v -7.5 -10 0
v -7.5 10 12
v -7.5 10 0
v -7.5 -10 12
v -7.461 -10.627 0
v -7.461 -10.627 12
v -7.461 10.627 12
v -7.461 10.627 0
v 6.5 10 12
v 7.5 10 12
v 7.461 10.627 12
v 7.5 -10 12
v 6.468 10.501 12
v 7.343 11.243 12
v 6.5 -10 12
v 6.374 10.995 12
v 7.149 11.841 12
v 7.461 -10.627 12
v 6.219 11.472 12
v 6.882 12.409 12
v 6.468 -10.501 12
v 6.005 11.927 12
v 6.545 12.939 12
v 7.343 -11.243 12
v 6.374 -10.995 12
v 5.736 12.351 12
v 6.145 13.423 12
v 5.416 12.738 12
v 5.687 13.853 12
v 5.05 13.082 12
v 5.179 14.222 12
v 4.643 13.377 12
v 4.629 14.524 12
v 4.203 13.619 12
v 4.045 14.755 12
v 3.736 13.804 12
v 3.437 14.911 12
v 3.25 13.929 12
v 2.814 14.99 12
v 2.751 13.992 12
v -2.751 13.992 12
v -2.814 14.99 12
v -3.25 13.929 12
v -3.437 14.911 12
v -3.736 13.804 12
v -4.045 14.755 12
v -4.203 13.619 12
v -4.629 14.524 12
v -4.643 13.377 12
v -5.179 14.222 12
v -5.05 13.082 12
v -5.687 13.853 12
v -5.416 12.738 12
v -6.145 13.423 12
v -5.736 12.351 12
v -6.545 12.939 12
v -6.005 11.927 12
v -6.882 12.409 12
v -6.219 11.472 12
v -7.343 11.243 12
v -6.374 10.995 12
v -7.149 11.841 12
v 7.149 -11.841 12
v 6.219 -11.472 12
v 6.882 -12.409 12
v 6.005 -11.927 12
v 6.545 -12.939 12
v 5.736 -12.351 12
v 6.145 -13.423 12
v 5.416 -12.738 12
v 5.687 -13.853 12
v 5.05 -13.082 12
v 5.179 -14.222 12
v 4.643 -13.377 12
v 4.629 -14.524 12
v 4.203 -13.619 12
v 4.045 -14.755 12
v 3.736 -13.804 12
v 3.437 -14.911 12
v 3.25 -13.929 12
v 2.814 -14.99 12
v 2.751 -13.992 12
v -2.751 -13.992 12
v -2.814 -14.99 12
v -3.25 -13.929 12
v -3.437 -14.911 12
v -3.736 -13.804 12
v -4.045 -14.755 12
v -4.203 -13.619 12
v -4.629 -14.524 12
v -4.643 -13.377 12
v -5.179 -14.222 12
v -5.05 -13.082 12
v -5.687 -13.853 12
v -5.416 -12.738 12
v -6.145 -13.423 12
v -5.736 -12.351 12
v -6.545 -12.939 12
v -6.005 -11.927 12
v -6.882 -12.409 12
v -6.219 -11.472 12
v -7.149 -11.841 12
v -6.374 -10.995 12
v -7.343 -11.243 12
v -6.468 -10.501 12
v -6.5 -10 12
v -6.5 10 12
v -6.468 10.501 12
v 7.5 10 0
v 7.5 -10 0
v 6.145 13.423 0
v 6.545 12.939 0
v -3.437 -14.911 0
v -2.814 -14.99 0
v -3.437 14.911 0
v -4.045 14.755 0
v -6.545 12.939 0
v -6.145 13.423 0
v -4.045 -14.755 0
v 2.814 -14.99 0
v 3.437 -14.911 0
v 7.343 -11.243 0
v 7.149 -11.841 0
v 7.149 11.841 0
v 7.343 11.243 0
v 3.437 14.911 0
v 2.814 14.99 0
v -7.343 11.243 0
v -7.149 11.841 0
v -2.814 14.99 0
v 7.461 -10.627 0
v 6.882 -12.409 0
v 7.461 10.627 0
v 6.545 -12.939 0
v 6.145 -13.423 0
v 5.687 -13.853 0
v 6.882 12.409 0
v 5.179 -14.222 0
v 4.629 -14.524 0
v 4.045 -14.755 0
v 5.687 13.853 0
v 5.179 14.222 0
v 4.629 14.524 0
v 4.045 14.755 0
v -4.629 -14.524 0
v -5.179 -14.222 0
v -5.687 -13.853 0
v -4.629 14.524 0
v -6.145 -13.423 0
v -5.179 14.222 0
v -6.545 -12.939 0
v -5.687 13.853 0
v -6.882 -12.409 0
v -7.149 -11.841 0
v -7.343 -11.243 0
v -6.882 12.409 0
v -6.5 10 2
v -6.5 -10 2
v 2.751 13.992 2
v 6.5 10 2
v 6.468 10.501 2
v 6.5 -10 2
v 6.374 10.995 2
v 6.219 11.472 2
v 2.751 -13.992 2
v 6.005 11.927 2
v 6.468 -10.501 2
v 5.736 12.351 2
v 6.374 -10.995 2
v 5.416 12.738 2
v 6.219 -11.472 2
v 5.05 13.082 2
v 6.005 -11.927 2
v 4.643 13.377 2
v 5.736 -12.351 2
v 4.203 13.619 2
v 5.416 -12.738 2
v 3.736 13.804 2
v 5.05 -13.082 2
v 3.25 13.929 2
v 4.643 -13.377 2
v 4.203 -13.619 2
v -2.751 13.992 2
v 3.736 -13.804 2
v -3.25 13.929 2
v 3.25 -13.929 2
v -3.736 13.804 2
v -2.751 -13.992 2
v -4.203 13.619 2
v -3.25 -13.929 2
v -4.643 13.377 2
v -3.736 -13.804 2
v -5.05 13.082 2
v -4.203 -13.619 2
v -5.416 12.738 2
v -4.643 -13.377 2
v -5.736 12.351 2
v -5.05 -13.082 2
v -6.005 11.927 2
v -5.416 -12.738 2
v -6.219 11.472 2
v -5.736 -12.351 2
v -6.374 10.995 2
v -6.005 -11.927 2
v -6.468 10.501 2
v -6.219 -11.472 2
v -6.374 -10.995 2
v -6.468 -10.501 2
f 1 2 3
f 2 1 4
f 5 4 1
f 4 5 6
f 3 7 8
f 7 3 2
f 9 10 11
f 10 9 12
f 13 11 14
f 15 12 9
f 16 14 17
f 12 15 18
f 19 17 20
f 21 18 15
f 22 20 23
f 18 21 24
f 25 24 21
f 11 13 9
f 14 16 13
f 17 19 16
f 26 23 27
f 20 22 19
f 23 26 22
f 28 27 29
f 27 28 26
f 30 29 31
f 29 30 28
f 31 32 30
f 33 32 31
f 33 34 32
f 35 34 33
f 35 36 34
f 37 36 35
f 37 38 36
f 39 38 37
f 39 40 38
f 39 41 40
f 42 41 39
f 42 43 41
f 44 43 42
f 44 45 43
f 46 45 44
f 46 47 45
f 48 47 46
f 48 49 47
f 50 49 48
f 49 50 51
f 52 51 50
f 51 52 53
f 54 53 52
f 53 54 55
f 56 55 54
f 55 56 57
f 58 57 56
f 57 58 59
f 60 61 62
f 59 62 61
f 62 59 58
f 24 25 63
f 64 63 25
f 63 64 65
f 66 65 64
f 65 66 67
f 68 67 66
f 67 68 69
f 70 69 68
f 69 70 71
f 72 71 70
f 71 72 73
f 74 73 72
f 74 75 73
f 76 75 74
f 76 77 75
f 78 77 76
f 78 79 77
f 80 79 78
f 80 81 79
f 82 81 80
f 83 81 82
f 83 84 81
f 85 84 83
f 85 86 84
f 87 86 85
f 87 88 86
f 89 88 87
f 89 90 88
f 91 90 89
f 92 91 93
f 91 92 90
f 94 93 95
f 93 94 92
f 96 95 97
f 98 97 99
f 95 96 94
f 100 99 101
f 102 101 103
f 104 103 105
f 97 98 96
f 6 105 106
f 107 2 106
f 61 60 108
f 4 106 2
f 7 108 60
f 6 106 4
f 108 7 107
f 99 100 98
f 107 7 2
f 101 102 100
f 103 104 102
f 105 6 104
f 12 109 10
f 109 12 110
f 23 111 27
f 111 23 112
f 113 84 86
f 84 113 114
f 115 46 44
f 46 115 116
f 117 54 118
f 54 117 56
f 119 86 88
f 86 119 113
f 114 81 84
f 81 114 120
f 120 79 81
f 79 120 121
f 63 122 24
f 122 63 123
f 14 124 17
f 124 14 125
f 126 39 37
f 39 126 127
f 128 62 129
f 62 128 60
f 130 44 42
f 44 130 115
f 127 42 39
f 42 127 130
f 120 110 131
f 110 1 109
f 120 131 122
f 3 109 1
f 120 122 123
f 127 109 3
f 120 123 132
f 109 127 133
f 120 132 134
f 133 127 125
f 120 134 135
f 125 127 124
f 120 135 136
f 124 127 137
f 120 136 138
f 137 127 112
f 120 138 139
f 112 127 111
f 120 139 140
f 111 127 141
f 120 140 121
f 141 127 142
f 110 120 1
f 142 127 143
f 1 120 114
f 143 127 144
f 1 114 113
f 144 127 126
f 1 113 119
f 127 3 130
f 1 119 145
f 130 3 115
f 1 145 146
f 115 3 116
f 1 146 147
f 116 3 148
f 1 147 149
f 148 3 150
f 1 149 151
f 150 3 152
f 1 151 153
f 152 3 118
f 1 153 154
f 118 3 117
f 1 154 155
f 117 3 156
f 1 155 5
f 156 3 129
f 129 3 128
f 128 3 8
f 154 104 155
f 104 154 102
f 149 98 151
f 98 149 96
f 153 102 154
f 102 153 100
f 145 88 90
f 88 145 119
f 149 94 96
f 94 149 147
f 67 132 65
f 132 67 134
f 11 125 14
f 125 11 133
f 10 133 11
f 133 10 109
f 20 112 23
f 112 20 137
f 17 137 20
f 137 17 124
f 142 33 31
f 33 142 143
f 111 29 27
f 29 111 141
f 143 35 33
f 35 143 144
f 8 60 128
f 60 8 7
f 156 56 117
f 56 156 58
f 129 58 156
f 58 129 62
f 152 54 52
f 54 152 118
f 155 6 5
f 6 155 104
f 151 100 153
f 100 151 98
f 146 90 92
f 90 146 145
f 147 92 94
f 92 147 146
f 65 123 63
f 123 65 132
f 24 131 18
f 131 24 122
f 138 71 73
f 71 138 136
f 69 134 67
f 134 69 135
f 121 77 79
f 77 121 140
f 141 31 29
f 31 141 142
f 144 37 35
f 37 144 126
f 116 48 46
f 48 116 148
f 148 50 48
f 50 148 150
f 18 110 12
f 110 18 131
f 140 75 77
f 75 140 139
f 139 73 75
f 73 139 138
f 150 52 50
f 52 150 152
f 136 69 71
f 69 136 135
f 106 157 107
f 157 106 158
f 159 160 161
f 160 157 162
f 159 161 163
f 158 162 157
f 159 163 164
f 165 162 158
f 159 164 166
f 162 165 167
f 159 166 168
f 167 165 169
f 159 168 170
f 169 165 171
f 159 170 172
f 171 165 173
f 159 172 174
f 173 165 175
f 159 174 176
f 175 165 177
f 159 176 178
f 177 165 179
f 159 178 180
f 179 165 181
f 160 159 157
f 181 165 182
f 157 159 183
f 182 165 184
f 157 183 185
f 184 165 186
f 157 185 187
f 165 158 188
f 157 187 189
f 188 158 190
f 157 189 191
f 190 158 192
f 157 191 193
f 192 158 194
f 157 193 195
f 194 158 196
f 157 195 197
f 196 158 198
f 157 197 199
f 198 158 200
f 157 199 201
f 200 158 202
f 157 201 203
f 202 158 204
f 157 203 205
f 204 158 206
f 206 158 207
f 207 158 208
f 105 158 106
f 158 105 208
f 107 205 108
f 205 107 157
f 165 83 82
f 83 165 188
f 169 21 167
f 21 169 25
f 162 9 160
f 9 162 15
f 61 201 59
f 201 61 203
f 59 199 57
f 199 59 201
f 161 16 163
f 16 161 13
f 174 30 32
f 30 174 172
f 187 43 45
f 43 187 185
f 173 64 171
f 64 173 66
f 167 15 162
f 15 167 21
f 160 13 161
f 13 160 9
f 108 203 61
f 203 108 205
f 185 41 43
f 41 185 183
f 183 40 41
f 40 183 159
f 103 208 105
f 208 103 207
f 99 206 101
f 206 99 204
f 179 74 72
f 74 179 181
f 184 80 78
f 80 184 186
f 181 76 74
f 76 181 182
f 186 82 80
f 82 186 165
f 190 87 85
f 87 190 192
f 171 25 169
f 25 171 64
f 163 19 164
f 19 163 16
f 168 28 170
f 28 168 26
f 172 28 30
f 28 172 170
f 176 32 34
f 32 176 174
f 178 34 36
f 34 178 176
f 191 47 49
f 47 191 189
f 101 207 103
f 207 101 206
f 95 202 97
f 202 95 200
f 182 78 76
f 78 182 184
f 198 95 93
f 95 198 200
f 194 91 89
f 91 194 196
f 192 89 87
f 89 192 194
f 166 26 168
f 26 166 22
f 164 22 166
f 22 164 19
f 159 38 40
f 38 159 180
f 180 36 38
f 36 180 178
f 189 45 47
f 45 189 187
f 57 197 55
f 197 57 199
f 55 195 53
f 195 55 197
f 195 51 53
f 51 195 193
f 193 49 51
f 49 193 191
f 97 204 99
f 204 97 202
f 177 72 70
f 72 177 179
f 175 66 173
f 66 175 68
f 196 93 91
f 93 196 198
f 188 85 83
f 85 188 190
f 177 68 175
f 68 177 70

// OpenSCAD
$fn = 50;


difference() {
	union() {
		hull() {
			translate(v = [-2.5000000000, 10.0000000000, 0]) {
				cylinder(h = 12, r = 5);
			}
			translate(v = [2.5000000000, 10.0000000000, 0]) {
				cylinder(h = 12, r = 5);
			}
			translate(v = [-2.5000000000, -10.0000000000, 0]) {
				cylinder(h = 12, r = 5);
			}
			translate(v = [2.5000000000, -10.0000000000, 0]) {
				cylinder(h = 12, r = 5);
			}
		}
	}
	union() {
		translate(v = [0, 0, 2]) {
			hull() {
				translate(v = [-2.5000000000, 10.0000000000, 0]) {
					cylinder(h = 10, r = 4);
				}
				translate(v = [2.5000000000, 10.0000000000, 0]) {
					cylinder(h = 10, r = 4);
				}
				translate(v = [-2.5000000000, -10.0000000000, 0]) {
					cylinder(h = 10, r = 4);
				}
				translate(v = [2.5000000000, -10.0000000000, 0]) {
					cylinder(h = 10, r = 4);
				}
			}
		}
	}
}
